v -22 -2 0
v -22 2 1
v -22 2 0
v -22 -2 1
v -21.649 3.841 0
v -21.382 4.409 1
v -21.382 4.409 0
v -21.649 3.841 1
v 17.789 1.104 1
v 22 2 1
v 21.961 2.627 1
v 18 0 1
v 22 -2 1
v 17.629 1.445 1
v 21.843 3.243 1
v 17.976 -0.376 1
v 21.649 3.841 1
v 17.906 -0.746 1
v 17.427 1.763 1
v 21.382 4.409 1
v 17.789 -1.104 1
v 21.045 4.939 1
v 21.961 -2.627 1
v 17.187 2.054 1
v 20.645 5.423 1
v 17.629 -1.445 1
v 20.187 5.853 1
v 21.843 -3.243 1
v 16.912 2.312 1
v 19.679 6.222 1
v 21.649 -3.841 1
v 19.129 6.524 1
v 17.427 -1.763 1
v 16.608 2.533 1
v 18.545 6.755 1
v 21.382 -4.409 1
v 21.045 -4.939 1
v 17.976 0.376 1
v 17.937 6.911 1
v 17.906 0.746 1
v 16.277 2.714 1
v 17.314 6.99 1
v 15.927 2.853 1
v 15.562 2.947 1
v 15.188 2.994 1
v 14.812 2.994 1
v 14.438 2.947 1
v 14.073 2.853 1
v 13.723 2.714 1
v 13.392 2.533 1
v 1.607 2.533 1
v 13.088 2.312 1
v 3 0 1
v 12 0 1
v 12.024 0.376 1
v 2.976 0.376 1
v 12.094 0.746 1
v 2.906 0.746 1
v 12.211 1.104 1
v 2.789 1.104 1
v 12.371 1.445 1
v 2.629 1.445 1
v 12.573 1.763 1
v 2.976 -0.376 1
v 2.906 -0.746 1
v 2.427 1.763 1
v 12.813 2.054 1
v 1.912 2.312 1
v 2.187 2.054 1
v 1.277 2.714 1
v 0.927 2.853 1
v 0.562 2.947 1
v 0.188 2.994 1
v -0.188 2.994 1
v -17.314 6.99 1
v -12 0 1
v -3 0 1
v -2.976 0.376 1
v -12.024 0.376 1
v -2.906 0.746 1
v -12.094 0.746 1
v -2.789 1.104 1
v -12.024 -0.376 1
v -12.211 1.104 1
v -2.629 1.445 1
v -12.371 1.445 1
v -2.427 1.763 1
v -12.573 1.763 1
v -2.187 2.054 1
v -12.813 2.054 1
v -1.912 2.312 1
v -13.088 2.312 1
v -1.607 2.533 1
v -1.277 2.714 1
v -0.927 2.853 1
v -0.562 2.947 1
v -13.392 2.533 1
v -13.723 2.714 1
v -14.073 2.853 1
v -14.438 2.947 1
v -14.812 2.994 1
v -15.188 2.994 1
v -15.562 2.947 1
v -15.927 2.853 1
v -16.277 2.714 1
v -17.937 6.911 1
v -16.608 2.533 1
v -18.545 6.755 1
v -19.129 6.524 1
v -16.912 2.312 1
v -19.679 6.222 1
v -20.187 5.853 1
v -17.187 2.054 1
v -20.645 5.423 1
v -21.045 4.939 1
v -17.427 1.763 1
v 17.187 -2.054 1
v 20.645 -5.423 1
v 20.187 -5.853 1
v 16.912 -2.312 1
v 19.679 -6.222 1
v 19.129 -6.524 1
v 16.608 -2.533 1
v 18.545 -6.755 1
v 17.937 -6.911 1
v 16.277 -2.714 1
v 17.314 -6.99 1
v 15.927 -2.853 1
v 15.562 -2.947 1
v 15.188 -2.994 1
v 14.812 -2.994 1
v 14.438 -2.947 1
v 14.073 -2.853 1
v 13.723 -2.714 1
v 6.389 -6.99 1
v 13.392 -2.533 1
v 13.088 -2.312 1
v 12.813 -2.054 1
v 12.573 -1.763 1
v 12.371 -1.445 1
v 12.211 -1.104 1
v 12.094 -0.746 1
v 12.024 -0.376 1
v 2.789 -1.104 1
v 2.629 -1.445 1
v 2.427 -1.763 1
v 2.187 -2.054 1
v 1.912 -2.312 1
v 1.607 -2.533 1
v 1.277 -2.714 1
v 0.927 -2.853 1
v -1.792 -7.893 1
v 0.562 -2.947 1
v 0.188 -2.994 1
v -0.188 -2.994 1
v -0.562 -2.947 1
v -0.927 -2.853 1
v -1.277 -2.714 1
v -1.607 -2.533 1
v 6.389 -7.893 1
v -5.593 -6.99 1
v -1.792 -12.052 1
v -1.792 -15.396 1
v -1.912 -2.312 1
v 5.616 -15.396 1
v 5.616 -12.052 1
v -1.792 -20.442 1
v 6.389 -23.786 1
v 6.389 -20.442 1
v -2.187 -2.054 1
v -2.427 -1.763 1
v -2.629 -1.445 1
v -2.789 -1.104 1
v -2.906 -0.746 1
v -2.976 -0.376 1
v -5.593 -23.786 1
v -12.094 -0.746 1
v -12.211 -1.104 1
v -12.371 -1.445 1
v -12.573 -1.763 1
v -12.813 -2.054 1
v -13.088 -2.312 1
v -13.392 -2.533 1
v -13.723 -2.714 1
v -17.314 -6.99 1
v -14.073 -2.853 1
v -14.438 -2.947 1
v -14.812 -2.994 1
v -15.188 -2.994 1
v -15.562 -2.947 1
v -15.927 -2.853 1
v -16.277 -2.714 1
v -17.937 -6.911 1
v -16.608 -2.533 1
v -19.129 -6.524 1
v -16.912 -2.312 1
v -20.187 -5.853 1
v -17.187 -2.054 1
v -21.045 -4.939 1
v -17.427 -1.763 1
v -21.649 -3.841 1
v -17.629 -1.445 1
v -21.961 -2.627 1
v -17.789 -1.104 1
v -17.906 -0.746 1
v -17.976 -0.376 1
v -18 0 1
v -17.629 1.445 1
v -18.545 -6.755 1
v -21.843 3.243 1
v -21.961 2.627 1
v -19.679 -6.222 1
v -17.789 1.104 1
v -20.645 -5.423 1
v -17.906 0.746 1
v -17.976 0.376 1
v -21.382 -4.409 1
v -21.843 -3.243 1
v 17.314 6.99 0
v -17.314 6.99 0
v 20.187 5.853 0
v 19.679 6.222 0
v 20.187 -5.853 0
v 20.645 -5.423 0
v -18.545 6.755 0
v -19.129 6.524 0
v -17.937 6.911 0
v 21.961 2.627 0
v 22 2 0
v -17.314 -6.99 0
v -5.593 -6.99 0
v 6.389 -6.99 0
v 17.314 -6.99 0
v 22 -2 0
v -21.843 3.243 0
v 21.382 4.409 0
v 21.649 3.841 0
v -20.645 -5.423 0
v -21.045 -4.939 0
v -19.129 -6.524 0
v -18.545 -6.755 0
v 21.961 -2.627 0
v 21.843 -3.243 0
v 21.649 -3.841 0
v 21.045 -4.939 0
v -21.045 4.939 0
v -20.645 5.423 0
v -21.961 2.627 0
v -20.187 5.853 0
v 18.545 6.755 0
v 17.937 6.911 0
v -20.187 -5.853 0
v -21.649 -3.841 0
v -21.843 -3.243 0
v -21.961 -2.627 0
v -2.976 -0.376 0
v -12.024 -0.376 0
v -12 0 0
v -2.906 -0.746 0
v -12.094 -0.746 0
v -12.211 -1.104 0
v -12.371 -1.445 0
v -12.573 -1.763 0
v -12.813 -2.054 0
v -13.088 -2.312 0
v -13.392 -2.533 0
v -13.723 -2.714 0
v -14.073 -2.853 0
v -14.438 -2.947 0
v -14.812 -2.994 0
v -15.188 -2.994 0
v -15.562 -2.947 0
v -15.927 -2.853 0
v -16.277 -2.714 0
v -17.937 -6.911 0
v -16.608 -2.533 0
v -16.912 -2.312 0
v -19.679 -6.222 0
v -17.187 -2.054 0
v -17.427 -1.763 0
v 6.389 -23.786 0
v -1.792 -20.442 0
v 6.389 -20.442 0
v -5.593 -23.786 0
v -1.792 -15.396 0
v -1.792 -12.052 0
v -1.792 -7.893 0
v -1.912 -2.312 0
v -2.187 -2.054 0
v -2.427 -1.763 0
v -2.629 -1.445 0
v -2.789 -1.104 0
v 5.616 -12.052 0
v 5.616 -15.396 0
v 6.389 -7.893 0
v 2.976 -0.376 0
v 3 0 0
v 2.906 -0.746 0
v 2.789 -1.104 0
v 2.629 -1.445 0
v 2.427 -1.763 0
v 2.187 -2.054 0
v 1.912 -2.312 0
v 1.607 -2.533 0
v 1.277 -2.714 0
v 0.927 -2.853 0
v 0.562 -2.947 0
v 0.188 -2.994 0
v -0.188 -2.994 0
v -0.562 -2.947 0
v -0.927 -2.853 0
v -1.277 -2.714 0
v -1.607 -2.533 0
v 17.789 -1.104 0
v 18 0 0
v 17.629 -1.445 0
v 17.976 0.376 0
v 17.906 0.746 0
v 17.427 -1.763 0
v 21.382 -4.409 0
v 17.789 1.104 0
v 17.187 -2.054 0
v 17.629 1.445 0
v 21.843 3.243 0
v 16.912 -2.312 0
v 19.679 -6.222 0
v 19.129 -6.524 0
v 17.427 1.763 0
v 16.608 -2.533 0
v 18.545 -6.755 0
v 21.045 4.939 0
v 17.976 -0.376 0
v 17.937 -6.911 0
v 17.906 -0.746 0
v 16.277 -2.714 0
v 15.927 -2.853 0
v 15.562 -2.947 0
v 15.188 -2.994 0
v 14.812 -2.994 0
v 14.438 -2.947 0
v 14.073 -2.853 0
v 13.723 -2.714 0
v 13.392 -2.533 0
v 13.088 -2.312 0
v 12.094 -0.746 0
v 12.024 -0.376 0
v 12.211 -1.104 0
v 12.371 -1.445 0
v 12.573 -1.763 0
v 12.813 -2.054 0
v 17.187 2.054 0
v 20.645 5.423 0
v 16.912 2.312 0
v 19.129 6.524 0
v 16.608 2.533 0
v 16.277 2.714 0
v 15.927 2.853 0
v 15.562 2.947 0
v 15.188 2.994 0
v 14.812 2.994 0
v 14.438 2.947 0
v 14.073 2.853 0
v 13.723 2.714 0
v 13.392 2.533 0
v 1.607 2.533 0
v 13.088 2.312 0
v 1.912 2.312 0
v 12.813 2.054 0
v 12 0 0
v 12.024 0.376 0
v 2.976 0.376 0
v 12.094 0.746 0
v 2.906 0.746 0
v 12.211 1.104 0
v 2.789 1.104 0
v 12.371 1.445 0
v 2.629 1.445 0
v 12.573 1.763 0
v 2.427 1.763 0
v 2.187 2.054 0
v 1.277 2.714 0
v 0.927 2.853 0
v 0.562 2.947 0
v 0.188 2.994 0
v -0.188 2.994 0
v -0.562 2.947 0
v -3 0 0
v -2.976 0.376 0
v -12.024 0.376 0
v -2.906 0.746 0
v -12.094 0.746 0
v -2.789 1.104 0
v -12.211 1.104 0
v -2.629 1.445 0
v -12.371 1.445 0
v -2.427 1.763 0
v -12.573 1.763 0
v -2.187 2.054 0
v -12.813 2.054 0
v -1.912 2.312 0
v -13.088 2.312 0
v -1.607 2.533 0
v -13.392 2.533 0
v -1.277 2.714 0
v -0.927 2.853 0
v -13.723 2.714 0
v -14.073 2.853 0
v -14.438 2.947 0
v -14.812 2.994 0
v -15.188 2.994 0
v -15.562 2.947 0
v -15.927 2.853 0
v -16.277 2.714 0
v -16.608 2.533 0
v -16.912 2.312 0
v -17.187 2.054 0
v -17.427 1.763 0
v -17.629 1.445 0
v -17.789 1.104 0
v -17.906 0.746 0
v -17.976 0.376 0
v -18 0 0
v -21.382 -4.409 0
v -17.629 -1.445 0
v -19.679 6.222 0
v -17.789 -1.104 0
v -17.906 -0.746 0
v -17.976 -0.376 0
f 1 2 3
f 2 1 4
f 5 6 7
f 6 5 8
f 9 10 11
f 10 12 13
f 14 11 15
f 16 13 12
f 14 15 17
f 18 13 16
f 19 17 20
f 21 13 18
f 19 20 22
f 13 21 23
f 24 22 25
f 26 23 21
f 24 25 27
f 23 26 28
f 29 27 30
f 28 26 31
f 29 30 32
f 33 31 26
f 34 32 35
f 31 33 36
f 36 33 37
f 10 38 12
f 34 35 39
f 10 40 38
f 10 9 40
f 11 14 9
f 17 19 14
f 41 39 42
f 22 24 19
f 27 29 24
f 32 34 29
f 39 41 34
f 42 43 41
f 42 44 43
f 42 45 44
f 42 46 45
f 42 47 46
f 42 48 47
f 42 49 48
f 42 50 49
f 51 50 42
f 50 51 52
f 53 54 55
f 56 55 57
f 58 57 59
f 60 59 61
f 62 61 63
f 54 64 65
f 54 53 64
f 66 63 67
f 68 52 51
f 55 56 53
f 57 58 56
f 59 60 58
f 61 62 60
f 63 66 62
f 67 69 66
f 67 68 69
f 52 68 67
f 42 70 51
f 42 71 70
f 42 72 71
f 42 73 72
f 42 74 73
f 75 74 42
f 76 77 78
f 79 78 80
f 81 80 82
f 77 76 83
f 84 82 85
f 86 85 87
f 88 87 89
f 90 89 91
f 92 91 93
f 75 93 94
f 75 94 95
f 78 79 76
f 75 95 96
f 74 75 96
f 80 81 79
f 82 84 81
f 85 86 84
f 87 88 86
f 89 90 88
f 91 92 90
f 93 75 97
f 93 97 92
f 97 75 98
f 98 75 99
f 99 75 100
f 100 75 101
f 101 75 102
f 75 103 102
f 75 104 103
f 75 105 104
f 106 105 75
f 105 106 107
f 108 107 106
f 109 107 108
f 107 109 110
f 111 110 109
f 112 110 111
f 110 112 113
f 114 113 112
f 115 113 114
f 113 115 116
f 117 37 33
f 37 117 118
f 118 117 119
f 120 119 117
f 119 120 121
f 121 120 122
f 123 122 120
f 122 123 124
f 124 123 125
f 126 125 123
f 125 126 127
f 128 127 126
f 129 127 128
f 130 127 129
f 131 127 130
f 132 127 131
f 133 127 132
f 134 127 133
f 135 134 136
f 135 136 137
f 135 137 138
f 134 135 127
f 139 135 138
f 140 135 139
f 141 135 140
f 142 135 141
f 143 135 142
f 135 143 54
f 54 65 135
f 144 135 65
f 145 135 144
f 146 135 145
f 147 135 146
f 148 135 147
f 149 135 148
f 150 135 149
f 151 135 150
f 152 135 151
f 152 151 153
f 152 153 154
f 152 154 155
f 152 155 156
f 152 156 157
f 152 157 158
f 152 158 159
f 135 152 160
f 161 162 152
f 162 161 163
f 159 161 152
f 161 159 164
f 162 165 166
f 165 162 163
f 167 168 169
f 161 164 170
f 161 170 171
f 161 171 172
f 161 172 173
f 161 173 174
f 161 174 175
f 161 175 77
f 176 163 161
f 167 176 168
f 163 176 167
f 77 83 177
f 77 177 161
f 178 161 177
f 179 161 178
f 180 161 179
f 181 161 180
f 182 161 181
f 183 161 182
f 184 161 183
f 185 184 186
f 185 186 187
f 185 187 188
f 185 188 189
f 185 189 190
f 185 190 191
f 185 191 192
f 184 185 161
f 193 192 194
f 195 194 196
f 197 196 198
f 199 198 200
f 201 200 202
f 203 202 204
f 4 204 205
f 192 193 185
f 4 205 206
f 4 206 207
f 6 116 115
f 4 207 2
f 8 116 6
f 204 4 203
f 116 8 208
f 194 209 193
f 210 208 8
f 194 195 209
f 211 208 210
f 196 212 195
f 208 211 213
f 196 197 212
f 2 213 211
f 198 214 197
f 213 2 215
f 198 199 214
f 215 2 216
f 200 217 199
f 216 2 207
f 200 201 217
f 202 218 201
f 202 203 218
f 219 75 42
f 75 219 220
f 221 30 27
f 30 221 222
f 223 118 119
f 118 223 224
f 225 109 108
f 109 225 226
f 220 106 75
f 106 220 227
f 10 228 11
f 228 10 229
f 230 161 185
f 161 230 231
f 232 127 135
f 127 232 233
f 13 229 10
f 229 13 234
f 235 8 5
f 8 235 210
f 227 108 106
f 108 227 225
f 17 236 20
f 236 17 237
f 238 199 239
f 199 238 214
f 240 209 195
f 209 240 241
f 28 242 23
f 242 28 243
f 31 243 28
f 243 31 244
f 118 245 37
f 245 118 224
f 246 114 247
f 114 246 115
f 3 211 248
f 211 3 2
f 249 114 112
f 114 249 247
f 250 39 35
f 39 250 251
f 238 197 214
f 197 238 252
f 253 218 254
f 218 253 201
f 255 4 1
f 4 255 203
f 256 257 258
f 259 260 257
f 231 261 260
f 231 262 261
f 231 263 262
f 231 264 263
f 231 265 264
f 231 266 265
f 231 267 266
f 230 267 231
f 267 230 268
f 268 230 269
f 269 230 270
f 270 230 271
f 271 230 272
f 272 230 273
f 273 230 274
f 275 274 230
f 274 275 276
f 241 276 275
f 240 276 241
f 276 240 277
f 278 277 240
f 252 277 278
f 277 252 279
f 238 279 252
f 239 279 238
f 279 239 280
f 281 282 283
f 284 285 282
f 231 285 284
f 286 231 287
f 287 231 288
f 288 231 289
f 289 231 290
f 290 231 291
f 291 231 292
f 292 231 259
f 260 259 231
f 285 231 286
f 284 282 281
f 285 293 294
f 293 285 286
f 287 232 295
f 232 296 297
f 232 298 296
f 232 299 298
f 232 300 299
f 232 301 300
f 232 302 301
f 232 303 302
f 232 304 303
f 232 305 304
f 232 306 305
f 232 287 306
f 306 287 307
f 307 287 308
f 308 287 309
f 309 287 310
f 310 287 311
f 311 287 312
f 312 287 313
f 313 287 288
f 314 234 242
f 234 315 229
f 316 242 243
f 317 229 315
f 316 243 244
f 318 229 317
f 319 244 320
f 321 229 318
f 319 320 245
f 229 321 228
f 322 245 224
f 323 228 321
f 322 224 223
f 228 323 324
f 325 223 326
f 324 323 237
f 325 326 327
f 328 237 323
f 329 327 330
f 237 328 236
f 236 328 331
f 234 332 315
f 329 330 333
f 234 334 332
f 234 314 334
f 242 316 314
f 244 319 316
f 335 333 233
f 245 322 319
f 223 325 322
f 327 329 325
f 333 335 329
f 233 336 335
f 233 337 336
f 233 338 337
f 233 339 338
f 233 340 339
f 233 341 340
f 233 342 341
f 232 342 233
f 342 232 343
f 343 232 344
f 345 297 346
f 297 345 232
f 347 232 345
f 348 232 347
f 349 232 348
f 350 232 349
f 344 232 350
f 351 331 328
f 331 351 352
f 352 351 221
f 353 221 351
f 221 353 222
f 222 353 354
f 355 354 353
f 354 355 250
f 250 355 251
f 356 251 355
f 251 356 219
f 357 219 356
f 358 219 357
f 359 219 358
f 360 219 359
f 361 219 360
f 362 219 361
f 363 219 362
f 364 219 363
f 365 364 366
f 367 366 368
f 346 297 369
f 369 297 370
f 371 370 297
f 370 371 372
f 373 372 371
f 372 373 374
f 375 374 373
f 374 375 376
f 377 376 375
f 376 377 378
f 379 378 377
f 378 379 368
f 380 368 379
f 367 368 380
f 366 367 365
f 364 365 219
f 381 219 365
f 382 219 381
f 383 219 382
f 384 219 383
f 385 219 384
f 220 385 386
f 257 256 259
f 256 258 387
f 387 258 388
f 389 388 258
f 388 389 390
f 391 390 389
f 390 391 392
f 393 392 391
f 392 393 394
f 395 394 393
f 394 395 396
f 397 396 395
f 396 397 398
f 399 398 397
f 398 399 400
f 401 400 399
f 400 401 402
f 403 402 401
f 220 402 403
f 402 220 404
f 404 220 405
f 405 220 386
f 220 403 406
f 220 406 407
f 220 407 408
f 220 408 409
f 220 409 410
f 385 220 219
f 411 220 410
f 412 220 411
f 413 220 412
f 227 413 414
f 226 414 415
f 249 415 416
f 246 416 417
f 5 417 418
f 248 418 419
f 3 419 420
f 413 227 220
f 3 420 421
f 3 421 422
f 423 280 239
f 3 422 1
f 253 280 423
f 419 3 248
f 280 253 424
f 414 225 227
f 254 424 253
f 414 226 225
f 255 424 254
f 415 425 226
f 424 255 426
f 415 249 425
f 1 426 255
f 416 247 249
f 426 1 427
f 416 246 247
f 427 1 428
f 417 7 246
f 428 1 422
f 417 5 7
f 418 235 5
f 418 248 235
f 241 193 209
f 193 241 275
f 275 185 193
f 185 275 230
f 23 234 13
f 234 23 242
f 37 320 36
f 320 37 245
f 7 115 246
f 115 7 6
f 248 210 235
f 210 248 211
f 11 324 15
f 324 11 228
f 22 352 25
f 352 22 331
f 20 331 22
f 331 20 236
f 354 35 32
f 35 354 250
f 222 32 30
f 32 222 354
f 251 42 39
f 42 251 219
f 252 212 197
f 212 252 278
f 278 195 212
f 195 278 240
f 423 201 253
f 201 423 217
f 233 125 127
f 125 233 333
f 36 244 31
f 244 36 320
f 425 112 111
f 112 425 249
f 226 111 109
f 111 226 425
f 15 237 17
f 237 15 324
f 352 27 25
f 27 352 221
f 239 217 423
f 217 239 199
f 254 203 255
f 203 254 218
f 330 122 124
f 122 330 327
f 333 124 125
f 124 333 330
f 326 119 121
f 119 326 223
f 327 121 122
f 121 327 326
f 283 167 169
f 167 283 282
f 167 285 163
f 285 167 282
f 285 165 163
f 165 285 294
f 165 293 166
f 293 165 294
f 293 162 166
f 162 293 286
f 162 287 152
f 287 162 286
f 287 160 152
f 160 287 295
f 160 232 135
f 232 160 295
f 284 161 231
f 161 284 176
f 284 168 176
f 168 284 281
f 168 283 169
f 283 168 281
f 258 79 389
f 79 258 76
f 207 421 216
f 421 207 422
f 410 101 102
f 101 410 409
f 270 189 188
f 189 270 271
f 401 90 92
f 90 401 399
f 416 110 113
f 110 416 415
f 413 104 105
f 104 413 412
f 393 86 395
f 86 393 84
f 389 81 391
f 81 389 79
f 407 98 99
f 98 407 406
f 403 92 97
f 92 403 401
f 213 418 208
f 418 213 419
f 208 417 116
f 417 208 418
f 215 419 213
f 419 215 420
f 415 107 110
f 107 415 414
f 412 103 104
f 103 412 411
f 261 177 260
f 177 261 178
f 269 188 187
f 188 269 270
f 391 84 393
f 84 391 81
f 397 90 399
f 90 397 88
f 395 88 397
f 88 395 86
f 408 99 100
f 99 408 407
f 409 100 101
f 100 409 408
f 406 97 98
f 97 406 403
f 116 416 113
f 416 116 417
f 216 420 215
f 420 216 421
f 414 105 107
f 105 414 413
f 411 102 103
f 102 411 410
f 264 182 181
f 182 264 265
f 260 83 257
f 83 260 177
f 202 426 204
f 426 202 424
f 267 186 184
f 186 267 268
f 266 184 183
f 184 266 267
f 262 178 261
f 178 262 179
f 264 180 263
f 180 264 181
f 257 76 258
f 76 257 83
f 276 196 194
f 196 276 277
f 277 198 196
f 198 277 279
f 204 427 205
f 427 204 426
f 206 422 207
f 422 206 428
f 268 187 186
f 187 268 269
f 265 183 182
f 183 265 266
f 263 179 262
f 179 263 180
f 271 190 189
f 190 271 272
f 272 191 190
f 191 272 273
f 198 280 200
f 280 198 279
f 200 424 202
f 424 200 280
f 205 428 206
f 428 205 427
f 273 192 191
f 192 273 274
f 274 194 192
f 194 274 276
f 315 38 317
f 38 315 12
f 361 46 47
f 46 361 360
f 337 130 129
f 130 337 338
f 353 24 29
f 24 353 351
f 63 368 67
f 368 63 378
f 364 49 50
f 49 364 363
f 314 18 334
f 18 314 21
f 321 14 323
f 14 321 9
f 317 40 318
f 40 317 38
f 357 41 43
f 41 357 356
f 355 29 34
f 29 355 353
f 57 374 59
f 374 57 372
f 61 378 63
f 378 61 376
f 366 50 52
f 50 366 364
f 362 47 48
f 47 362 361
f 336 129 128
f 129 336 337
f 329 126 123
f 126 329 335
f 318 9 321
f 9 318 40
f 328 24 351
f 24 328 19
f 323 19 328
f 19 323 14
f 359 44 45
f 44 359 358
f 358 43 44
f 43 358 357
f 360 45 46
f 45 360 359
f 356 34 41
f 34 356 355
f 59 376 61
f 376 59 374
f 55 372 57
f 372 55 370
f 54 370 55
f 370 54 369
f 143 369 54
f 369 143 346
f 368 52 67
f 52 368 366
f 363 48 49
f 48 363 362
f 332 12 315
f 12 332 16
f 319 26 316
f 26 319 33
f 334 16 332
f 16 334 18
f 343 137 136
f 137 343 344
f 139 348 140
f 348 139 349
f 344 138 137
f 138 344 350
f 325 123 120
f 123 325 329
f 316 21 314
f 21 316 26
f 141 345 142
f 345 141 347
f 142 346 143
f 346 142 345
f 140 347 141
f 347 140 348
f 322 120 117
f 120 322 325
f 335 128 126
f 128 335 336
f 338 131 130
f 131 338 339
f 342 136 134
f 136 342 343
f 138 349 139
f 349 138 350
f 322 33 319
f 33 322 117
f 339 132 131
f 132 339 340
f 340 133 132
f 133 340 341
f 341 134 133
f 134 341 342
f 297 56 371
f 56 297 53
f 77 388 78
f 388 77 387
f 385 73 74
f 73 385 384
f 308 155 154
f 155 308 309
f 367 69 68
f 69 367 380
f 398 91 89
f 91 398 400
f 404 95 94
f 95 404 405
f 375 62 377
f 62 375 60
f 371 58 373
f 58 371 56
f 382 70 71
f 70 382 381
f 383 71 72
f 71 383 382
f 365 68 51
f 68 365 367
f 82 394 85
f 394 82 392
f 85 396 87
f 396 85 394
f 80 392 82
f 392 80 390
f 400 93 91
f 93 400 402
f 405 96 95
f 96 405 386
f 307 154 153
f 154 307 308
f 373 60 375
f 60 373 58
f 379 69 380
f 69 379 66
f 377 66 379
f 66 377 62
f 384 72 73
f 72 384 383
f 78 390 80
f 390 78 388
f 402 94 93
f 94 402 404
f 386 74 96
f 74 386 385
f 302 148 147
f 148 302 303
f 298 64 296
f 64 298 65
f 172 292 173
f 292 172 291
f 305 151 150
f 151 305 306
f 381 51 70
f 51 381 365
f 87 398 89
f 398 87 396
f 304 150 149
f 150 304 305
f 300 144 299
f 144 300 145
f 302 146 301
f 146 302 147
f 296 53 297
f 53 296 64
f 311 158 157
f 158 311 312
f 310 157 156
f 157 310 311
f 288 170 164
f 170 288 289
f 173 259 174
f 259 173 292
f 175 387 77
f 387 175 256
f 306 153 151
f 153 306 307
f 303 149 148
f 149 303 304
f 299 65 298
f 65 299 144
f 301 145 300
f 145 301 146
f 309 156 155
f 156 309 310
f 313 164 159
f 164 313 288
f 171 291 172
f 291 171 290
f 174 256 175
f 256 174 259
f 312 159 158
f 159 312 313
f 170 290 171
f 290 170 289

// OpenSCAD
$fn = 50;


difference() {
	union() {
		translate(v = [0, 0, 0]) {
			rotate(a = [0, 0, 0]) {
				hull() {
					translate(v = [-17.0000000000, 2.0000000000, 0]) {
						rotate(a = [0, 0, 0]) {
							translate(v = [0, 0, 0]) {
								rotate(a = [0, 0, 0]) {
									cylinder(h = 1, r = 5);
								}
							}
						}
					}
					translate(v = [17.0000000000, 2.0000000000, 0]) {
						rotate(a = [0, 0, 0]) {
							translate(v = [0, 0, 0]) {
								rotate(a = [0, 0, 0]) {
									cylinder(h = 1, r = 5);
								}
							}
						}
					}
					translate(v = [-17.0000000000, -2.0000000000, 0]) {
						rotate(a = [0, 0, 0]) {
							translate(v = [0, 0, 0]) {
								rotate(a = [0, 0, 0]) {
									cylinder(h = 1, r = 5);
								}
							}
						}
					}
					translate(v = [17.0000000000, -2.0000000000, 0]) {
						rotate(a = [0, 0, 0]) {
							translate(v = [0, 0, 0]) {
								rotate(a = [0, 0, 0]) {
									cylinder(h = 1, r = 5);
								}
							}
						}
					}
				}
			}
		}
		translate(v = [0, -5, 0]) {
			rotate(a = [0, 0, 0]) {
				linear_extrude(height = 1) {
					text(font = "DejaVu Sans Mono:style=Bold", halign = "center", size = 19.0000000000, text = "E", valign = "top");
				}
			}
		}
	}
	union() {
		translate(v = [-15.0000000000, 0.0000000000, -125.0000000000]) {
			rotate(a = [0, 0, 0]) {
				cylinder(h = 250, r = 3.0000000000);
			}
		}
		translate(v = [15.0000000000, 0.0000000000, -125.0000000000]) {
			rotate(a = [0, 0, 0]) {
				cylinder(h = 250, r = 3.0000000000);
			}
		}
		translate(v = [15.0000000000, 0.0000000000, -125.0000000000]) {
			rotate(a = [0, 0, 0]) {
				cylinder(h = 250, r = 3.0000000000);
			}
		}
		translate(v = [0, 0, -125.0000000000]) {
			rotate(a = [0, 0, 0]) {
				cylinder(h = 250, r = 3.0000000000);
			}
		}
	}
}
